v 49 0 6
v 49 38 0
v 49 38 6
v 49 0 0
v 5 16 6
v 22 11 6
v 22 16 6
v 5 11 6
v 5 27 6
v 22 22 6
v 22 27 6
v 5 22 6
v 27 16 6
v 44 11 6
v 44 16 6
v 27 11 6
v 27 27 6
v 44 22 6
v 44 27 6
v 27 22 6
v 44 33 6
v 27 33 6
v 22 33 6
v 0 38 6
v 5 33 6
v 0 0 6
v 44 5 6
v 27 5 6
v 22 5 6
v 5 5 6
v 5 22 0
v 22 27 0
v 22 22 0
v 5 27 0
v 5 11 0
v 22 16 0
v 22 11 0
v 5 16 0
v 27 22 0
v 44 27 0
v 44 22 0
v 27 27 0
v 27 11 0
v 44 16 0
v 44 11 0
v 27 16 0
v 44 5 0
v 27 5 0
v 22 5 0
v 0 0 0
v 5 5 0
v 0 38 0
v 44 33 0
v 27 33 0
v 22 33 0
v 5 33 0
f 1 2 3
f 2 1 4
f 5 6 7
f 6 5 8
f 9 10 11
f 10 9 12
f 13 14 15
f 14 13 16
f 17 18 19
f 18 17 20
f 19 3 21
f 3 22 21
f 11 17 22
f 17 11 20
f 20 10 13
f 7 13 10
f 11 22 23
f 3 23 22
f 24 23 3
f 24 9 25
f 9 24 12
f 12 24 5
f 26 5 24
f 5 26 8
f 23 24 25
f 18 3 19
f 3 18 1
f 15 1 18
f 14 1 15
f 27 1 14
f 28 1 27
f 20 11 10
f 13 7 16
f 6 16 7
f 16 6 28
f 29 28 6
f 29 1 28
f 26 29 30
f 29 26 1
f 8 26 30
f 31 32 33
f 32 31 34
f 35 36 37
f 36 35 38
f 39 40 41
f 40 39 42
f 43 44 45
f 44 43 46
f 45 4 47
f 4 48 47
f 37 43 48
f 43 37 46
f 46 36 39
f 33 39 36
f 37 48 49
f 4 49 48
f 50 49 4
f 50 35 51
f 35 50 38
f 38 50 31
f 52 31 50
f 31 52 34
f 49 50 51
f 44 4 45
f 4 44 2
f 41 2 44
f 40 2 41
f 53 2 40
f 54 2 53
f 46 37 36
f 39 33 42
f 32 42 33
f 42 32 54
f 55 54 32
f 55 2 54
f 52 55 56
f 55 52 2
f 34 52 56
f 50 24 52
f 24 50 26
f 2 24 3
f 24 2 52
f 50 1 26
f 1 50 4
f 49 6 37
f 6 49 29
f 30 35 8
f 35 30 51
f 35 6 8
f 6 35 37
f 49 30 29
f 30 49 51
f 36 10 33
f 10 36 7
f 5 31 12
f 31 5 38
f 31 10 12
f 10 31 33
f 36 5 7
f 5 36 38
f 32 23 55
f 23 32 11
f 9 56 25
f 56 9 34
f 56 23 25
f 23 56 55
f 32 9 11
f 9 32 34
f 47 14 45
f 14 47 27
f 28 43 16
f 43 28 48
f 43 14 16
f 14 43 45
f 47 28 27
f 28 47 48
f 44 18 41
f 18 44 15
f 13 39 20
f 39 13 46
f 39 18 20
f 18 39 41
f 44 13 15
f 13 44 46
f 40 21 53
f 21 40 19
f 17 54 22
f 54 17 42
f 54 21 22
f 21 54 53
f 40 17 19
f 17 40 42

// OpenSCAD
difference () {
  translate ([49/2, 19, 3]) {
    cube ([49, 38, 6], center=true);
  }
  translate ([5, 5, 0]) {
    translate ([17/2, 3, 0]) {
      cube ([17, 6, 1000], center=true);
    }
  }
  translate ([5, 16, 0]) {
    translate ([17/2, 3, 0]) {
      cube ([17, 6, 1000], center=true);
    }
  }
  translate ([5, 27, 0]) {
    translate ([17/2, 3, 0]) {
      cube ([17, 6, 1000], center=true);
    }
  }
  translate ([27, 5, 0]) {
    translate ([17/2, 3, 0]) {
      cube ([17, 6, 1000], center=true);
    }
  }
  translate ([27, 16, 0]) {
    translate ([17/2, 3, 0]) {
      cube ([17, 6, 1000], center=true);
    }
  }
  translate ([27, 27, 0]) {
    translate ([17/2, 3, 0]) {
      cube ([17, 6, 1000], center=true);
    }
  }
}
